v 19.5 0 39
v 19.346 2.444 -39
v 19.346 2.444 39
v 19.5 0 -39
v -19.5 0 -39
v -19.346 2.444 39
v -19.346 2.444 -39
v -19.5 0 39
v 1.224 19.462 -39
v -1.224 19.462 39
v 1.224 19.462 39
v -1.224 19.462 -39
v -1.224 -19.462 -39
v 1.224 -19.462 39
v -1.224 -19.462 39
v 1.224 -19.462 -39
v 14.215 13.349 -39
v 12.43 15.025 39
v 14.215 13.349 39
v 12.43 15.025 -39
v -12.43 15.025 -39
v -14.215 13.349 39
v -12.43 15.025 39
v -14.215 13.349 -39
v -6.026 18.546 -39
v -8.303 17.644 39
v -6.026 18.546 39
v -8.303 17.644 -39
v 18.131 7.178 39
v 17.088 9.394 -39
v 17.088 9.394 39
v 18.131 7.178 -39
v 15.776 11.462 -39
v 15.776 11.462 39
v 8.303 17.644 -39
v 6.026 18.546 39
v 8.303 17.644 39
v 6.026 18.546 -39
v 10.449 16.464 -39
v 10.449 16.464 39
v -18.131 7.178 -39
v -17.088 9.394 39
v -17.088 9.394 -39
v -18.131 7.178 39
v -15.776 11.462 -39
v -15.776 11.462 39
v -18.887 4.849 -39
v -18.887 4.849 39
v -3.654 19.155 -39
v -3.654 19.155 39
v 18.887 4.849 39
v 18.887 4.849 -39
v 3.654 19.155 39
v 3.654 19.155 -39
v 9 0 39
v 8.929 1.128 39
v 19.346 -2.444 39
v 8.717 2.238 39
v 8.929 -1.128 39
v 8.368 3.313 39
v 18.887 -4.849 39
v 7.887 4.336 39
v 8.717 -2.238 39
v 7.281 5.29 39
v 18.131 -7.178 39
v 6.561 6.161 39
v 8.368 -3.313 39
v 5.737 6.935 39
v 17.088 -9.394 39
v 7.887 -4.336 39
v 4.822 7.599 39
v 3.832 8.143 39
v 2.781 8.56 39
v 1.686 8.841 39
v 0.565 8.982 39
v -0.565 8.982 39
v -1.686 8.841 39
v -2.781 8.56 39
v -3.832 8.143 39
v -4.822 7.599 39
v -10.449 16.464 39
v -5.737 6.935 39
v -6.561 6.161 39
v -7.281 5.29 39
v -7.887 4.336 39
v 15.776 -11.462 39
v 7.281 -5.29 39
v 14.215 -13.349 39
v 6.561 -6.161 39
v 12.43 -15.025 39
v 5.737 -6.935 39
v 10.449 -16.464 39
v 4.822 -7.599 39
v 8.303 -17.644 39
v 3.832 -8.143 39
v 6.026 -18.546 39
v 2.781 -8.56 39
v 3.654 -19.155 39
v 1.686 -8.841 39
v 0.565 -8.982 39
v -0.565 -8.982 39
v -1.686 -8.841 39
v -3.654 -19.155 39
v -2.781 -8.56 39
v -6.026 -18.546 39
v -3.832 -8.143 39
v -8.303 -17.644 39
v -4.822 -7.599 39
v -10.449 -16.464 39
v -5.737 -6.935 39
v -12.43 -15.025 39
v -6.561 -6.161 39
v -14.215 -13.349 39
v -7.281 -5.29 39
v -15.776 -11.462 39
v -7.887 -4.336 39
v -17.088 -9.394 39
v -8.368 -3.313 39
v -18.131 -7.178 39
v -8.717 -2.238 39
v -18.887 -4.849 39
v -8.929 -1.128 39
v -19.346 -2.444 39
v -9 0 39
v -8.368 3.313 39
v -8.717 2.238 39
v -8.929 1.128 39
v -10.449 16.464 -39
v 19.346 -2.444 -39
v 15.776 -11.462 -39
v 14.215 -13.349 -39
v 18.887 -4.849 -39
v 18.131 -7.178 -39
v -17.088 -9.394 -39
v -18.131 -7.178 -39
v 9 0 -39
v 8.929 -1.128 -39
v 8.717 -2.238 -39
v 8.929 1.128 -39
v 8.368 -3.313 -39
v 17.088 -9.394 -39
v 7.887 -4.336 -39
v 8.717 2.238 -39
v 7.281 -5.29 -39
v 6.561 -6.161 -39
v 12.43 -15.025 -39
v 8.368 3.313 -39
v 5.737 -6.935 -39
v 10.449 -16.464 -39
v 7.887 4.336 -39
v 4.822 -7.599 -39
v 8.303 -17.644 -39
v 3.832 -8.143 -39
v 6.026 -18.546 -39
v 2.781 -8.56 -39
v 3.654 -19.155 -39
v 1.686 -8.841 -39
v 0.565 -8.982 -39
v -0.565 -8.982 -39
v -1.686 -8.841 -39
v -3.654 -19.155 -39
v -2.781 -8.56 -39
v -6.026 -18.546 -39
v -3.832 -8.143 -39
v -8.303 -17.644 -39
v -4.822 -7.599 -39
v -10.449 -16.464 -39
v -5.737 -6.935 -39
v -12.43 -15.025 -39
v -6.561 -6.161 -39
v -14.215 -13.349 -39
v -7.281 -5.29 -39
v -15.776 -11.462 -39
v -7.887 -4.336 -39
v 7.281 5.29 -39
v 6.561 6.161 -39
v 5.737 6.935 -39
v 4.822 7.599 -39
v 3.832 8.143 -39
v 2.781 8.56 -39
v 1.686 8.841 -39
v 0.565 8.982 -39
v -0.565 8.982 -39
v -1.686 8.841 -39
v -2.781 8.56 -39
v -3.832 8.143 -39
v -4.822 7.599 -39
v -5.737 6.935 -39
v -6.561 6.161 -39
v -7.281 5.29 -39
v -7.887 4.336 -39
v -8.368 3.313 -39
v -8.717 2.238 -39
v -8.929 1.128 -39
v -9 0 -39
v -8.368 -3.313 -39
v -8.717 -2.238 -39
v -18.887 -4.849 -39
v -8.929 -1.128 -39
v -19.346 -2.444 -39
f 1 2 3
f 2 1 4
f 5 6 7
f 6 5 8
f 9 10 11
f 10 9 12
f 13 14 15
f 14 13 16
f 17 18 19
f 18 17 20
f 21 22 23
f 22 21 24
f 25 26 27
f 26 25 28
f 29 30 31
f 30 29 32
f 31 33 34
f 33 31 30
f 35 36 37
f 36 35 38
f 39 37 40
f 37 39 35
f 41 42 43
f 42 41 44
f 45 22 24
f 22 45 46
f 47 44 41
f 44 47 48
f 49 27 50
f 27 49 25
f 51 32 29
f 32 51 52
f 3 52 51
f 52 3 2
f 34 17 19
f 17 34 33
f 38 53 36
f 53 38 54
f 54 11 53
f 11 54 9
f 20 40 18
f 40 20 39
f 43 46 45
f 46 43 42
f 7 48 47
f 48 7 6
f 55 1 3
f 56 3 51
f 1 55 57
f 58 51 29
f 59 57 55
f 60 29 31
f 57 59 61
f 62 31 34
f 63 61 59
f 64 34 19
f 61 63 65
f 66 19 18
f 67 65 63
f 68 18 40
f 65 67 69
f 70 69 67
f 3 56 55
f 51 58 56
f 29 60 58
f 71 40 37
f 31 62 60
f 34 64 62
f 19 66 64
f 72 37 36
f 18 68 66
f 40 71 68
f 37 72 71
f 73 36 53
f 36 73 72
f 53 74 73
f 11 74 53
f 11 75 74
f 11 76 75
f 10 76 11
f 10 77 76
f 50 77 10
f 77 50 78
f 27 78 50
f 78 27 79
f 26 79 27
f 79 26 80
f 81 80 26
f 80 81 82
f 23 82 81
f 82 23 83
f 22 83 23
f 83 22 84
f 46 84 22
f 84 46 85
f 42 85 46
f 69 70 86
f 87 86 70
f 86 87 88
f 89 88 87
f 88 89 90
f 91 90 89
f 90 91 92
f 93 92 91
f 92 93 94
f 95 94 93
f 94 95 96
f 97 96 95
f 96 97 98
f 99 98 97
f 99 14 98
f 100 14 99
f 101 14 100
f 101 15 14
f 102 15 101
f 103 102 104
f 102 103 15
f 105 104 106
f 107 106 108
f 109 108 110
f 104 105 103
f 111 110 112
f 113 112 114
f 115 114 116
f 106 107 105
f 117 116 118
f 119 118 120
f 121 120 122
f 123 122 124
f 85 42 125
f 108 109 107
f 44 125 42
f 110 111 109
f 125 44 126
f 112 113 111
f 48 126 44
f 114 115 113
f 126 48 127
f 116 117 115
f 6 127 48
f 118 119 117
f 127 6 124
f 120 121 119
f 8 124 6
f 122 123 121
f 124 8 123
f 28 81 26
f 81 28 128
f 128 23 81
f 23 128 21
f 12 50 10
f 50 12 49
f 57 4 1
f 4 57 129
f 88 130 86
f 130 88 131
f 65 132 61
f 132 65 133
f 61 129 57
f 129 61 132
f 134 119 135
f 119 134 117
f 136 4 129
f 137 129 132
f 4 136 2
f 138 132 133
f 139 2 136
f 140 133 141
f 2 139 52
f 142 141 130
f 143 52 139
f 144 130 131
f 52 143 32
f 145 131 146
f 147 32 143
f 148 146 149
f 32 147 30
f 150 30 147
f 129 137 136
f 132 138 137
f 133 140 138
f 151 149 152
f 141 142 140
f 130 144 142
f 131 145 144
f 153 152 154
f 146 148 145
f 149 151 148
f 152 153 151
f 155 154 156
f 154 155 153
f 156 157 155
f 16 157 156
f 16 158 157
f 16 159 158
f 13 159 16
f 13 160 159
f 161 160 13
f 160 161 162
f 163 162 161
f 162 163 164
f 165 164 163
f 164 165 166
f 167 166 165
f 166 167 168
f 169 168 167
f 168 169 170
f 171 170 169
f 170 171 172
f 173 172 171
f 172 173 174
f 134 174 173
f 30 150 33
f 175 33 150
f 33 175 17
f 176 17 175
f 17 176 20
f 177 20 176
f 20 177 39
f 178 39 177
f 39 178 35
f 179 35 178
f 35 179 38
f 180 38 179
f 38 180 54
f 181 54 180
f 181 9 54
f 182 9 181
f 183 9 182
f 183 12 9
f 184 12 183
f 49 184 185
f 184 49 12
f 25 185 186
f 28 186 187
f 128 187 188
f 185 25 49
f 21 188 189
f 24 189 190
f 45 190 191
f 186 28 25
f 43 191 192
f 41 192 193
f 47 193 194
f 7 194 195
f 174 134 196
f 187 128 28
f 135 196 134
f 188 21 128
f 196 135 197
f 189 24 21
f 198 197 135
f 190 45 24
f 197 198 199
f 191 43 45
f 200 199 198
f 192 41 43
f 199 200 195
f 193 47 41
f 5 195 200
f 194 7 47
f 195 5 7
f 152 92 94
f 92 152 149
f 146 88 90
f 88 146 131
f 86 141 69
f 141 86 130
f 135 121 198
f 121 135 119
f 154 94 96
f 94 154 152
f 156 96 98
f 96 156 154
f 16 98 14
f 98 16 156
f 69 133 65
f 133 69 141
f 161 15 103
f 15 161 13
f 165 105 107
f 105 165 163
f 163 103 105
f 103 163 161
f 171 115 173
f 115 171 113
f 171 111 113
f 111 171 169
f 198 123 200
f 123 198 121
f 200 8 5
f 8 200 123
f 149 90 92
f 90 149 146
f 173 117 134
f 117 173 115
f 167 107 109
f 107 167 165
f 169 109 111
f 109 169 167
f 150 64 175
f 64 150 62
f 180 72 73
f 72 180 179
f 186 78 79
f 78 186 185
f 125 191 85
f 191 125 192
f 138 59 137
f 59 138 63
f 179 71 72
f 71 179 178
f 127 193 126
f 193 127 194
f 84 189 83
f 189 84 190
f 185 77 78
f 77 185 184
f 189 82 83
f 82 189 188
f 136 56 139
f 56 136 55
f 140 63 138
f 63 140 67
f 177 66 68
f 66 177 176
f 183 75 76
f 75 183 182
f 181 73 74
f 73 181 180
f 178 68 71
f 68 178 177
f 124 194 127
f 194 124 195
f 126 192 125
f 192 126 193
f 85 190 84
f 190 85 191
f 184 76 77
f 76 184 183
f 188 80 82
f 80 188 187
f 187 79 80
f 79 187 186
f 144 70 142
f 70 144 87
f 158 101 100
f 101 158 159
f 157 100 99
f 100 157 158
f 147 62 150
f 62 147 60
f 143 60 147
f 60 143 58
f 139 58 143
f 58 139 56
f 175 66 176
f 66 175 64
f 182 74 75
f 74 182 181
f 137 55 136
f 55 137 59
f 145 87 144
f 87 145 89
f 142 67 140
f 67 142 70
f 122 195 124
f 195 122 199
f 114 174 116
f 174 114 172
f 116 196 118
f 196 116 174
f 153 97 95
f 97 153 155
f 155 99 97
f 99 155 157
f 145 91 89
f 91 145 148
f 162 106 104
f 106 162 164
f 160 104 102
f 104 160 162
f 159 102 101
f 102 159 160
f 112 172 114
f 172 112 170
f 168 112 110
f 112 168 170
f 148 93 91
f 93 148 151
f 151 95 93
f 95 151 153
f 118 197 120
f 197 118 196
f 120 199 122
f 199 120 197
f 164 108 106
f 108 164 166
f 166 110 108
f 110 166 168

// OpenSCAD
$fn = 50;


difference() {
	union() {
		translate(v = [0, 0, -39.0000000000]) {
			cylinder(h = 78, r = 19.5000000000);
		}
	}
	union() {
		translate(v = [0, 0, -100.0000000000]) {
			cylinder(h = 200, r = 9);
		}
	}
}
